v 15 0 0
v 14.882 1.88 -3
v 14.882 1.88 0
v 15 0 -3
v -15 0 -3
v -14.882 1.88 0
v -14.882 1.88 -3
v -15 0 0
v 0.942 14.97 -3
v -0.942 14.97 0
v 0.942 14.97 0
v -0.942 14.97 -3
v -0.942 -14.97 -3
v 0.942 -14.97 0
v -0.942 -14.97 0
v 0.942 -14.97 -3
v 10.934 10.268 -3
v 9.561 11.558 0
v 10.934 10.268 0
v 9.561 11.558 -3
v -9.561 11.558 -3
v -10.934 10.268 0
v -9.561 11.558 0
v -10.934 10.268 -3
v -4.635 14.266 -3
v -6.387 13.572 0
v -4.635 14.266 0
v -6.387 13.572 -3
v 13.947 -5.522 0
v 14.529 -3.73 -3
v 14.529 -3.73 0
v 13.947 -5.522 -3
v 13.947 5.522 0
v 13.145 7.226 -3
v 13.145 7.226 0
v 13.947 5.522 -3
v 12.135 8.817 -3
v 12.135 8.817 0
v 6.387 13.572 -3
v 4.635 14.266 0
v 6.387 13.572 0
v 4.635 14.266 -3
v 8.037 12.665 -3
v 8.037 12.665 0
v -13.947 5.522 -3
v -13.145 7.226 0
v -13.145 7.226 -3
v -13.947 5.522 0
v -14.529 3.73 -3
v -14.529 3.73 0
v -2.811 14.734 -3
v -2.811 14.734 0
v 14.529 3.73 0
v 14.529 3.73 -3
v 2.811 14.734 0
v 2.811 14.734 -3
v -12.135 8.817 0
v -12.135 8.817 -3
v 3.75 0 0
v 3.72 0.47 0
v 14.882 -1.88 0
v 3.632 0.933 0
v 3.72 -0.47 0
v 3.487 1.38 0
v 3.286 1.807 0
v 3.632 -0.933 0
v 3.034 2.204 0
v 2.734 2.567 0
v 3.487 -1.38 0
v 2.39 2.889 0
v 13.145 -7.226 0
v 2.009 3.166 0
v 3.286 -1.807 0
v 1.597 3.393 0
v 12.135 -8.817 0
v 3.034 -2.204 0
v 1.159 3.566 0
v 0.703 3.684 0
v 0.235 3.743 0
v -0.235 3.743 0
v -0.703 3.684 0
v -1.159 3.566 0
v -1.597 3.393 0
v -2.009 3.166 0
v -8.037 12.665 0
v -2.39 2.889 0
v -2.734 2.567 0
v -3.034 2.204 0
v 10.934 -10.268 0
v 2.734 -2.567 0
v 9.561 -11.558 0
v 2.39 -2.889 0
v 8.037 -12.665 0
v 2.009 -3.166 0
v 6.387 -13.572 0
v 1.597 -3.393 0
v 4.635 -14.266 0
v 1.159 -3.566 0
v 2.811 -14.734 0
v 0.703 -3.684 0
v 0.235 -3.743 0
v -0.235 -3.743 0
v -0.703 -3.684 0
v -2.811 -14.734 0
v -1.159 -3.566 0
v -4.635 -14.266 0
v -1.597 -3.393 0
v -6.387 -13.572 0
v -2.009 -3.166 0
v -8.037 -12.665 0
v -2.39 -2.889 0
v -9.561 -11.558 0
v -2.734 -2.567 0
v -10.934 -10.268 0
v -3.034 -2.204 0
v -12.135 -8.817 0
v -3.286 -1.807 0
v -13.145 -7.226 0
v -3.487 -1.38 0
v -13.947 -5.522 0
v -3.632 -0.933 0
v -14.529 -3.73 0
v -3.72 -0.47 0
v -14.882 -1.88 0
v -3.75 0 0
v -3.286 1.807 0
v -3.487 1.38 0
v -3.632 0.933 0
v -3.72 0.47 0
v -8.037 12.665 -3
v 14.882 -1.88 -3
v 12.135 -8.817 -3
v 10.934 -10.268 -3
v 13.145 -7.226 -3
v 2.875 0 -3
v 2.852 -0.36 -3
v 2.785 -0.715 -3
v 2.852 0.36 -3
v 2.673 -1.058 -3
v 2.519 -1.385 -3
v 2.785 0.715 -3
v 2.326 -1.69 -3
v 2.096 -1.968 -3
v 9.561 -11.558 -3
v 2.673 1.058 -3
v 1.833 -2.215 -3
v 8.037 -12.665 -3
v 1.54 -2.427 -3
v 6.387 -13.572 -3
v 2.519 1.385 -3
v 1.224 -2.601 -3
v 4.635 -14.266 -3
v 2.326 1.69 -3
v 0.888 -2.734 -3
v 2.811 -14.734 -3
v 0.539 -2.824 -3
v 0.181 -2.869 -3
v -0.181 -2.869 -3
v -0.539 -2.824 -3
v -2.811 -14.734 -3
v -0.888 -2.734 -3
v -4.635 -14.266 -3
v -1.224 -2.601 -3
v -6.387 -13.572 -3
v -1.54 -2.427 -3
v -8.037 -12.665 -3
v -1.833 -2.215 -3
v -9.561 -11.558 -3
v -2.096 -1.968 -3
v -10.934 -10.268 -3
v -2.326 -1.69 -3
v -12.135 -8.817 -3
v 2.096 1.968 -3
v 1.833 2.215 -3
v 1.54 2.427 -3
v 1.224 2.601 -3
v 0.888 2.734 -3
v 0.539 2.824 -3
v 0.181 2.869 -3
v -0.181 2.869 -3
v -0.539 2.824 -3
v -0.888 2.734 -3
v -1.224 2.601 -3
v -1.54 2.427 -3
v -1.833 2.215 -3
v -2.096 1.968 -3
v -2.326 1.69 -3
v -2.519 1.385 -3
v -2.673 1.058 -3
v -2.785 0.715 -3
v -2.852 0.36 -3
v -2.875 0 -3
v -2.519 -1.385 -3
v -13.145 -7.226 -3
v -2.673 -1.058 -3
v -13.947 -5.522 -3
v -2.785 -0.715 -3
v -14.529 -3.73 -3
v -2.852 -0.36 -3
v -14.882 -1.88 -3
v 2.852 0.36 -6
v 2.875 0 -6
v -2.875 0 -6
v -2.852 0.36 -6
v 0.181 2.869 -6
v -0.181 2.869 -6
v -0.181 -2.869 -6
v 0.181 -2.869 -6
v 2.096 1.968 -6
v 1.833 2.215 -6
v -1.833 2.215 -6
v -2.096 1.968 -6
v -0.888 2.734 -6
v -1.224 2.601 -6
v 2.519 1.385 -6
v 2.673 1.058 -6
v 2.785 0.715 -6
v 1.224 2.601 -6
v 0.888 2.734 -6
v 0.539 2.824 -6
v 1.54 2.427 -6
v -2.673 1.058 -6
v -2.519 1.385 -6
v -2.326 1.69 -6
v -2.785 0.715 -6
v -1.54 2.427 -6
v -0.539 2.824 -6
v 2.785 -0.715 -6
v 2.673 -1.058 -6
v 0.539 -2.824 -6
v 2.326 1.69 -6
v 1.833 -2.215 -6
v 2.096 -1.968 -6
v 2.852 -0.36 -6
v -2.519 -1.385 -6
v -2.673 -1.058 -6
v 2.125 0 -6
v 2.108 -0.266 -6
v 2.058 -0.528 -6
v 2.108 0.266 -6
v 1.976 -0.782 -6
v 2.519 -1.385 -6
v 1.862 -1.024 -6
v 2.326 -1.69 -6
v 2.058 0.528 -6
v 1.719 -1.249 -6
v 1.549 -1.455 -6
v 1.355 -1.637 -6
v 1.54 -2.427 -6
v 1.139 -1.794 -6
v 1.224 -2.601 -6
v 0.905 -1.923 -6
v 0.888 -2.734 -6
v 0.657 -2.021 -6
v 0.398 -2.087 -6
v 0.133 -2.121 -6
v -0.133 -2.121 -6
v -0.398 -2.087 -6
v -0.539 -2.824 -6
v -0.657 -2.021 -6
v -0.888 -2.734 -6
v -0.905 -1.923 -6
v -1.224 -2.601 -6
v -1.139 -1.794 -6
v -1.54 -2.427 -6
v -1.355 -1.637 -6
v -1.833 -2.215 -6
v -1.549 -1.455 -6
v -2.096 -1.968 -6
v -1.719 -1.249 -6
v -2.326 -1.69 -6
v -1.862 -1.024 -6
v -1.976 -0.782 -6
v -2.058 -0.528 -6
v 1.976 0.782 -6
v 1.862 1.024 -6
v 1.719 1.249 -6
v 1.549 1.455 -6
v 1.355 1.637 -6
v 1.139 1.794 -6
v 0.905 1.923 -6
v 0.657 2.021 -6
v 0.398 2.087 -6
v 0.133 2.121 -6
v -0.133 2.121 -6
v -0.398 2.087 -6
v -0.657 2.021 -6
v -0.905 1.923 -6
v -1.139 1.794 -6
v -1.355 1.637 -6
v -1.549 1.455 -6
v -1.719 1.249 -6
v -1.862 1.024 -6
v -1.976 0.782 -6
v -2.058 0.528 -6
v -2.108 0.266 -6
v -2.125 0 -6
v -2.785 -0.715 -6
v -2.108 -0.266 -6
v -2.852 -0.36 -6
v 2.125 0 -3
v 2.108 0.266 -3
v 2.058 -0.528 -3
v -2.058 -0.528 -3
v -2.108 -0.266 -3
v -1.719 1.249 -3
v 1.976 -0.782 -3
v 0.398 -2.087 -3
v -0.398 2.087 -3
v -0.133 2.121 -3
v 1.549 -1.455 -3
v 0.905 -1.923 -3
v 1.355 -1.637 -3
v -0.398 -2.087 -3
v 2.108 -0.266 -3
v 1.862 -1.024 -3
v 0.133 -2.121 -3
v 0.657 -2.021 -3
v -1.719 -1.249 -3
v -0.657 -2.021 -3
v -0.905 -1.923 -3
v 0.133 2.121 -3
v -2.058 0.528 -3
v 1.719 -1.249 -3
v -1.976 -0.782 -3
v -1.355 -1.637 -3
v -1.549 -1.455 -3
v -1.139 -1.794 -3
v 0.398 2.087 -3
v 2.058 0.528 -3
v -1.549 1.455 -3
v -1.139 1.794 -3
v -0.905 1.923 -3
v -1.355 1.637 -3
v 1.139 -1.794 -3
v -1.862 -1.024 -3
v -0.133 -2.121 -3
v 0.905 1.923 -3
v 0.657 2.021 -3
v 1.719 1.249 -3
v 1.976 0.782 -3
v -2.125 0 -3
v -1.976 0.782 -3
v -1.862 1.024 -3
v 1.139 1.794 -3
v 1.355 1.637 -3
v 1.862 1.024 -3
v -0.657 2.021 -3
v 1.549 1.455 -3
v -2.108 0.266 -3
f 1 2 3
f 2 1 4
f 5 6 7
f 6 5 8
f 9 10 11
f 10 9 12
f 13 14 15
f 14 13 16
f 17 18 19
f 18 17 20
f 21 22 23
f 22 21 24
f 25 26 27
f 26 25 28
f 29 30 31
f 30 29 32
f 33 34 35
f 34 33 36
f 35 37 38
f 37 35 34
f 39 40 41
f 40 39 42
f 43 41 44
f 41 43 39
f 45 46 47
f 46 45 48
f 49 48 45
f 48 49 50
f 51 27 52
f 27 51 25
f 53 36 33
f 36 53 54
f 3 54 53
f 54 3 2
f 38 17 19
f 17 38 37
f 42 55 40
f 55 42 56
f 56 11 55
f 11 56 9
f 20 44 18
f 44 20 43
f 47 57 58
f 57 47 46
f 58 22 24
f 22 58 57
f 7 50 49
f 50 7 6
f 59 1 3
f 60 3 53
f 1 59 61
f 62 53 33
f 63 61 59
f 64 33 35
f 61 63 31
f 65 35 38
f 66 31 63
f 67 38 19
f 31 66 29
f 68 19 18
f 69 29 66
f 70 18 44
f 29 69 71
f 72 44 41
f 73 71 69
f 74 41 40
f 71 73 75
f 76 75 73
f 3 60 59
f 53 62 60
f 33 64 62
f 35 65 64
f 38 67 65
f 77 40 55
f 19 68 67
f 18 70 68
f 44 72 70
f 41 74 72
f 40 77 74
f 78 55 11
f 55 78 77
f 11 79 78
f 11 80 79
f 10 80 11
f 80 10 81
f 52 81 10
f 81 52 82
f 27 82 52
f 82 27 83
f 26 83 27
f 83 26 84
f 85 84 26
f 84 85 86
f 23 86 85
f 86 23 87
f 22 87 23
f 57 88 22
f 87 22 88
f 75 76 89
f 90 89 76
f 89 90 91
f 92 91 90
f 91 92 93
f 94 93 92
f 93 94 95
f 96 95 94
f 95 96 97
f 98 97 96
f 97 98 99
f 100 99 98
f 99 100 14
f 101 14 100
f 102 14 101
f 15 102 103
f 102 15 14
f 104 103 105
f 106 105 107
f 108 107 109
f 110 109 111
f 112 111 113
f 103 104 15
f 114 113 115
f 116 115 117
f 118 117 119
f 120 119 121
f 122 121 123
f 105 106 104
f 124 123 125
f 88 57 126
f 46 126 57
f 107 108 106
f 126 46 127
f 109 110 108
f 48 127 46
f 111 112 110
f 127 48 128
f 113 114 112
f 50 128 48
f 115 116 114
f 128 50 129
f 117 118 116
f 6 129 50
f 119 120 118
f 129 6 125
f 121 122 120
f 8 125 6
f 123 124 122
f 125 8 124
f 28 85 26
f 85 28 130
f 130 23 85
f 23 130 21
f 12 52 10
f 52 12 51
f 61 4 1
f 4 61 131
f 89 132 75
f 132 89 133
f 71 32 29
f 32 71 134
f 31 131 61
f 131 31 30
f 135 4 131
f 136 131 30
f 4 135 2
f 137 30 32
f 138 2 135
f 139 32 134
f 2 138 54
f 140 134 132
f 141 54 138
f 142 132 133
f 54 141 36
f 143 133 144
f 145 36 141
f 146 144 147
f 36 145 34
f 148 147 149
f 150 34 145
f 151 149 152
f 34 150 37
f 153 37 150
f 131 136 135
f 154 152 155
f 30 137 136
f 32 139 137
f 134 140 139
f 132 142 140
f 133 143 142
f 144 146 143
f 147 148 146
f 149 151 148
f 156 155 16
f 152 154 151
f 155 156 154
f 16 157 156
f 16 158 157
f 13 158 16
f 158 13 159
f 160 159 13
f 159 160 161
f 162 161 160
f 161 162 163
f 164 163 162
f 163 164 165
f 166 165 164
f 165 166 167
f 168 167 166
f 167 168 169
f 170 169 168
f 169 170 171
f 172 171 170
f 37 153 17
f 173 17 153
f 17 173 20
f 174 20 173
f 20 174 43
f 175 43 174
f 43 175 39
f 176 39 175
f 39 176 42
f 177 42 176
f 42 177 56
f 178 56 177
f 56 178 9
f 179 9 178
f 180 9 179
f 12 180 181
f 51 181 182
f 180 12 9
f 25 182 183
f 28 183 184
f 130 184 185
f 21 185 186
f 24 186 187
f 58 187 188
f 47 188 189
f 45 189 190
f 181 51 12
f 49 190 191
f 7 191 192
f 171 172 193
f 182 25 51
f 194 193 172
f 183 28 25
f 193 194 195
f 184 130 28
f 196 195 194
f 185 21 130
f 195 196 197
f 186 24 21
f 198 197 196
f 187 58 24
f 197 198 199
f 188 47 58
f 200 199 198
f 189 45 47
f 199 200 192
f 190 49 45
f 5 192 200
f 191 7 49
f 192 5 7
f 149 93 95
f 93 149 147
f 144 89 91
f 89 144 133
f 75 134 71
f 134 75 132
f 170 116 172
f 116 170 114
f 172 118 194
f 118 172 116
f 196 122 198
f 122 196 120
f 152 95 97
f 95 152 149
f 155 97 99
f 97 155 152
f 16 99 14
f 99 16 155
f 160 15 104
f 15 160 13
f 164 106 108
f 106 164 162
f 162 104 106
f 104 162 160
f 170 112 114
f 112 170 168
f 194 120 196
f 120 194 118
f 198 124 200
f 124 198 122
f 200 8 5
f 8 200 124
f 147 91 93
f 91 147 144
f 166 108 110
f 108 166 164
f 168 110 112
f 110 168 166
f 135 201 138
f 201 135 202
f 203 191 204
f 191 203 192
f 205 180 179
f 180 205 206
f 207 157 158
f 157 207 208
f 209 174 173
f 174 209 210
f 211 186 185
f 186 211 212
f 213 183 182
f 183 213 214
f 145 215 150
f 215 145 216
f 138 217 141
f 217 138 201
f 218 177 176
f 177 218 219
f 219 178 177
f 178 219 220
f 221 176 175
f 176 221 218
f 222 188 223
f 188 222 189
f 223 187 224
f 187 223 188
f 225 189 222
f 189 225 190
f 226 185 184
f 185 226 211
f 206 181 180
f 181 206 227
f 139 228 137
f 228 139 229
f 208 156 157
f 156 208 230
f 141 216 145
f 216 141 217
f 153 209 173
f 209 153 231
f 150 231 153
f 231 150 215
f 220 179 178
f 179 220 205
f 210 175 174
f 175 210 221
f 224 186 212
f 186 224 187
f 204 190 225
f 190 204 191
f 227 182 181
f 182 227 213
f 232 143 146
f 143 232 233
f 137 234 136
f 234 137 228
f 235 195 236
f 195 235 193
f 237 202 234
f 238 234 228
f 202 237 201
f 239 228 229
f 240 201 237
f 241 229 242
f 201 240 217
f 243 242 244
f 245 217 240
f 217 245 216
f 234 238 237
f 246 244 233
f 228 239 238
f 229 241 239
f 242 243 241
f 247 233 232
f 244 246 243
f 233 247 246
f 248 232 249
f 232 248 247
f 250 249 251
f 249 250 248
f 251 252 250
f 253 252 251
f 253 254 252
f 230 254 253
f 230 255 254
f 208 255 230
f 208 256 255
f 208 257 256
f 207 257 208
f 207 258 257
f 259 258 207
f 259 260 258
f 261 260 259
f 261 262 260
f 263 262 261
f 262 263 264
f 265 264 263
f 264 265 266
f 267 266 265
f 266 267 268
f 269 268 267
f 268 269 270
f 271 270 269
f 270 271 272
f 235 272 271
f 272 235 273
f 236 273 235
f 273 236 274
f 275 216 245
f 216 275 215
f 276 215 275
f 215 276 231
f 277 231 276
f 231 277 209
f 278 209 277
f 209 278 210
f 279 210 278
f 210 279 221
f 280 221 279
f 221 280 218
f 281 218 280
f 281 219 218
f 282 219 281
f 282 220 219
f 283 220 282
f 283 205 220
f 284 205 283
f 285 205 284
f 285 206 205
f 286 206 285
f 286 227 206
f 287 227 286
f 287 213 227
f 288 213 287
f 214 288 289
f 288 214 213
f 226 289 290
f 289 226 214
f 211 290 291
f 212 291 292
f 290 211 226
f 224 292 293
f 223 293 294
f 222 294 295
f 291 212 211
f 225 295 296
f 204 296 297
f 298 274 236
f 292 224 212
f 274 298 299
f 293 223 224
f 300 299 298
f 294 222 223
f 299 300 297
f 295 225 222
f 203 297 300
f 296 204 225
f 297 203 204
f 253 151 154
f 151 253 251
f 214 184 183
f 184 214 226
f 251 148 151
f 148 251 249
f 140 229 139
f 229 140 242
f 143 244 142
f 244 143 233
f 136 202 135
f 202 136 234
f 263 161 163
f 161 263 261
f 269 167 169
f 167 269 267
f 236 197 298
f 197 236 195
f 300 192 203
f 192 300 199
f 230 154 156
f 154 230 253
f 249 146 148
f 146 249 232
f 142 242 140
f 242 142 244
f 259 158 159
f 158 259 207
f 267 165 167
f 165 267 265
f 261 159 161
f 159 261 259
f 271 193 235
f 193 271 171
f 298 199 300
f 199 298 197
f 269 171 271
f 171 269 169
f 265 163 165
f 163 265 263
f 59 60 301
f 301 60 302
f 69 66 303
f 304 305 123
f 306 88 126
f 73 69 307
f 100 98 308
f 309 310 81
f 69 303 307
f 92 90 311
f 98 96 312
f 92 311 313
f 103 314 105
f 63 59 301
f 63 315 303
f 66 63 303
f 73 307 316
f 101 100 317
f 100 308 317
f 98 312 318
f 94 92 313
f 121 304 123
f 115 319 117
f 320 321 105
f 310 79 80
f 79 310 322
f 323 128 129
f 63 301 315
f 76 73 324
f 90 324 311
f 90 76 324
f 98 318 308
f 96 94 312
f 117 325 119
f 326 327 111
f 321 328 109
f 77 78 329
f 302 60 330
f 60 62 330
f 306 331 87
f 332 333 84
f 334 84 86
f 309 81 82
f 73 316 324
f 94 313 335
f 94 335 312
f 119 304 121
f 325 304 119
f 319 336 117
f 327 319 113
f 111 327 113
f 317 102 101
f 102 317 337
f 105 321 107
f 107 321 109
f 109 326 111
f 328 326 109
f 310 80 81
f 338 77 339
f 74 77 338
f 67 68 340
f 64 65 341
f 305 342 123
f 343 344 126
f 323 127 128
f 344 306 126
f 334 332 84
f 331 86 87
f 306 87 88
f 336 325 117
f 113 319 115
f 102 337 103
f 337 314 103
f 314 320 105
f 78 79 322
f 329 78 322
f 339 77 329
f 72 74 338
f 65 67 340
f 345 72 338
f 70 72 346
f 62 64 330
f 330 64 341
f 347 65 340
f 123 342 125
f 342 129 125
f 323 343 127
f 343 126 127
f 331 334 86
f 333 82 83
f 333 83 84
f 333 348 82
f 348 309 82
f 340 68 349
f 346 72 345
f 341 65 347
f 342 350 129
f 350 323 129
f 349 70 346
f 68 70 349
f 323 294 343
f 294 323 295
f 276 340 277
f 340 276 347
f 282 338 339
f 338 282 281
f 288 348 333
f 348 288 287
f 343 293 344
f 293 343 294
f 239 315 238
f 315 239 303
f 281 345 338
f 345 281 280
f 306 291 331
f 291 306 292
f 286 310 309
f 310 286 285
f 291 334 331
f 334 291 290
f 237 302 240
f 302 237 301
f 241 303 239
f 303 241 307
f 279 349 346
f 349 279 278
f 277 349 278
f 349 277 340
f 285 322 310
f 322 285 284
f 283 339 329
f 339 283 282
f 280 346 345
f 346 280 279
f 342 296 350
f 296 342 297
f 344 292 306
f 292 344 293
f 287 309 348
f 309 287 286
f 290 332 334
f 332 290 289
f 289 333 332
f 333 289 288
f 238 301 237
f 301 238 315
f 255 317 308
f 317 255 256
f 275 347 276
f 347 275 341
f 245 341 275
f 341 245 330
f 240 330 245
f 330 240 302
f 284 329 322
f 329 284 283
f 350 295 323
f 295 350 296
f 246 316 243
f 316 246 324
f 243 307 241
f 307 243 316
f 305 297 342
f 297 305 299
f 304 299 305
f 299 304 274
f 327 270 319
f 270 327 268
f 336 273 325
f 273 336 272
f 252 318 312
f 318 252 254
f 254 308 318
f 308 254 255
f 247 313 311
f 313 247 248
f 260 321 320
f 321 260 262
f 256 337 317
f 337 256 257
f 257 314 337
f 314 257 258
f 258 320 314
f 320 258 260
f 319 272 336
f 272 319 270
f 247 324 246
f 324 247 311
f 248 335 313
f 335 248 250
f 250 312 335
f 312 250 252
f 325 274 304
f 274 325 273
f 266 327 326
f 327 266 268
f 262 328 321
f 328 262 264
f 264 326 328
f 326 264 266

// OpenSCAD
$fn = 50;


difference() {
	union() {
		translate(v = [0, 0, -3.0000000000]) {
			cylinder(h = 3, r = 15.0000000000);
		}
		translate(v = [0, 0, -6.0000000000]) {
			cylinder(h = 6, r = 2.8750000000);
		}
	}
	union() {
		translate(v = [0, 0, 0]) {
			rotate(a = [0, 0, 0]) {
				difference() {
					union() {
						translate(v = [0, 0, -6.0000000000]) {
							cylinder(h = 6, r = 2.0000000000);
						}
						translate(v = [0, 0, -3]) {
							cylinder(h = 3, r1 = 2.1250000000, r2 = 3.7500000000);
						}
						translate(v = [0, 0, -6.0000000000]) {
							cylinder(h = 6, r = 2.1250000000);
						}
						translate(v = [0, 0, -6.0000000000]) {
							cylinder(h = 6, r = 2.0000000000);
						}
					}
					union();
				}
			}
		}
	}
}
